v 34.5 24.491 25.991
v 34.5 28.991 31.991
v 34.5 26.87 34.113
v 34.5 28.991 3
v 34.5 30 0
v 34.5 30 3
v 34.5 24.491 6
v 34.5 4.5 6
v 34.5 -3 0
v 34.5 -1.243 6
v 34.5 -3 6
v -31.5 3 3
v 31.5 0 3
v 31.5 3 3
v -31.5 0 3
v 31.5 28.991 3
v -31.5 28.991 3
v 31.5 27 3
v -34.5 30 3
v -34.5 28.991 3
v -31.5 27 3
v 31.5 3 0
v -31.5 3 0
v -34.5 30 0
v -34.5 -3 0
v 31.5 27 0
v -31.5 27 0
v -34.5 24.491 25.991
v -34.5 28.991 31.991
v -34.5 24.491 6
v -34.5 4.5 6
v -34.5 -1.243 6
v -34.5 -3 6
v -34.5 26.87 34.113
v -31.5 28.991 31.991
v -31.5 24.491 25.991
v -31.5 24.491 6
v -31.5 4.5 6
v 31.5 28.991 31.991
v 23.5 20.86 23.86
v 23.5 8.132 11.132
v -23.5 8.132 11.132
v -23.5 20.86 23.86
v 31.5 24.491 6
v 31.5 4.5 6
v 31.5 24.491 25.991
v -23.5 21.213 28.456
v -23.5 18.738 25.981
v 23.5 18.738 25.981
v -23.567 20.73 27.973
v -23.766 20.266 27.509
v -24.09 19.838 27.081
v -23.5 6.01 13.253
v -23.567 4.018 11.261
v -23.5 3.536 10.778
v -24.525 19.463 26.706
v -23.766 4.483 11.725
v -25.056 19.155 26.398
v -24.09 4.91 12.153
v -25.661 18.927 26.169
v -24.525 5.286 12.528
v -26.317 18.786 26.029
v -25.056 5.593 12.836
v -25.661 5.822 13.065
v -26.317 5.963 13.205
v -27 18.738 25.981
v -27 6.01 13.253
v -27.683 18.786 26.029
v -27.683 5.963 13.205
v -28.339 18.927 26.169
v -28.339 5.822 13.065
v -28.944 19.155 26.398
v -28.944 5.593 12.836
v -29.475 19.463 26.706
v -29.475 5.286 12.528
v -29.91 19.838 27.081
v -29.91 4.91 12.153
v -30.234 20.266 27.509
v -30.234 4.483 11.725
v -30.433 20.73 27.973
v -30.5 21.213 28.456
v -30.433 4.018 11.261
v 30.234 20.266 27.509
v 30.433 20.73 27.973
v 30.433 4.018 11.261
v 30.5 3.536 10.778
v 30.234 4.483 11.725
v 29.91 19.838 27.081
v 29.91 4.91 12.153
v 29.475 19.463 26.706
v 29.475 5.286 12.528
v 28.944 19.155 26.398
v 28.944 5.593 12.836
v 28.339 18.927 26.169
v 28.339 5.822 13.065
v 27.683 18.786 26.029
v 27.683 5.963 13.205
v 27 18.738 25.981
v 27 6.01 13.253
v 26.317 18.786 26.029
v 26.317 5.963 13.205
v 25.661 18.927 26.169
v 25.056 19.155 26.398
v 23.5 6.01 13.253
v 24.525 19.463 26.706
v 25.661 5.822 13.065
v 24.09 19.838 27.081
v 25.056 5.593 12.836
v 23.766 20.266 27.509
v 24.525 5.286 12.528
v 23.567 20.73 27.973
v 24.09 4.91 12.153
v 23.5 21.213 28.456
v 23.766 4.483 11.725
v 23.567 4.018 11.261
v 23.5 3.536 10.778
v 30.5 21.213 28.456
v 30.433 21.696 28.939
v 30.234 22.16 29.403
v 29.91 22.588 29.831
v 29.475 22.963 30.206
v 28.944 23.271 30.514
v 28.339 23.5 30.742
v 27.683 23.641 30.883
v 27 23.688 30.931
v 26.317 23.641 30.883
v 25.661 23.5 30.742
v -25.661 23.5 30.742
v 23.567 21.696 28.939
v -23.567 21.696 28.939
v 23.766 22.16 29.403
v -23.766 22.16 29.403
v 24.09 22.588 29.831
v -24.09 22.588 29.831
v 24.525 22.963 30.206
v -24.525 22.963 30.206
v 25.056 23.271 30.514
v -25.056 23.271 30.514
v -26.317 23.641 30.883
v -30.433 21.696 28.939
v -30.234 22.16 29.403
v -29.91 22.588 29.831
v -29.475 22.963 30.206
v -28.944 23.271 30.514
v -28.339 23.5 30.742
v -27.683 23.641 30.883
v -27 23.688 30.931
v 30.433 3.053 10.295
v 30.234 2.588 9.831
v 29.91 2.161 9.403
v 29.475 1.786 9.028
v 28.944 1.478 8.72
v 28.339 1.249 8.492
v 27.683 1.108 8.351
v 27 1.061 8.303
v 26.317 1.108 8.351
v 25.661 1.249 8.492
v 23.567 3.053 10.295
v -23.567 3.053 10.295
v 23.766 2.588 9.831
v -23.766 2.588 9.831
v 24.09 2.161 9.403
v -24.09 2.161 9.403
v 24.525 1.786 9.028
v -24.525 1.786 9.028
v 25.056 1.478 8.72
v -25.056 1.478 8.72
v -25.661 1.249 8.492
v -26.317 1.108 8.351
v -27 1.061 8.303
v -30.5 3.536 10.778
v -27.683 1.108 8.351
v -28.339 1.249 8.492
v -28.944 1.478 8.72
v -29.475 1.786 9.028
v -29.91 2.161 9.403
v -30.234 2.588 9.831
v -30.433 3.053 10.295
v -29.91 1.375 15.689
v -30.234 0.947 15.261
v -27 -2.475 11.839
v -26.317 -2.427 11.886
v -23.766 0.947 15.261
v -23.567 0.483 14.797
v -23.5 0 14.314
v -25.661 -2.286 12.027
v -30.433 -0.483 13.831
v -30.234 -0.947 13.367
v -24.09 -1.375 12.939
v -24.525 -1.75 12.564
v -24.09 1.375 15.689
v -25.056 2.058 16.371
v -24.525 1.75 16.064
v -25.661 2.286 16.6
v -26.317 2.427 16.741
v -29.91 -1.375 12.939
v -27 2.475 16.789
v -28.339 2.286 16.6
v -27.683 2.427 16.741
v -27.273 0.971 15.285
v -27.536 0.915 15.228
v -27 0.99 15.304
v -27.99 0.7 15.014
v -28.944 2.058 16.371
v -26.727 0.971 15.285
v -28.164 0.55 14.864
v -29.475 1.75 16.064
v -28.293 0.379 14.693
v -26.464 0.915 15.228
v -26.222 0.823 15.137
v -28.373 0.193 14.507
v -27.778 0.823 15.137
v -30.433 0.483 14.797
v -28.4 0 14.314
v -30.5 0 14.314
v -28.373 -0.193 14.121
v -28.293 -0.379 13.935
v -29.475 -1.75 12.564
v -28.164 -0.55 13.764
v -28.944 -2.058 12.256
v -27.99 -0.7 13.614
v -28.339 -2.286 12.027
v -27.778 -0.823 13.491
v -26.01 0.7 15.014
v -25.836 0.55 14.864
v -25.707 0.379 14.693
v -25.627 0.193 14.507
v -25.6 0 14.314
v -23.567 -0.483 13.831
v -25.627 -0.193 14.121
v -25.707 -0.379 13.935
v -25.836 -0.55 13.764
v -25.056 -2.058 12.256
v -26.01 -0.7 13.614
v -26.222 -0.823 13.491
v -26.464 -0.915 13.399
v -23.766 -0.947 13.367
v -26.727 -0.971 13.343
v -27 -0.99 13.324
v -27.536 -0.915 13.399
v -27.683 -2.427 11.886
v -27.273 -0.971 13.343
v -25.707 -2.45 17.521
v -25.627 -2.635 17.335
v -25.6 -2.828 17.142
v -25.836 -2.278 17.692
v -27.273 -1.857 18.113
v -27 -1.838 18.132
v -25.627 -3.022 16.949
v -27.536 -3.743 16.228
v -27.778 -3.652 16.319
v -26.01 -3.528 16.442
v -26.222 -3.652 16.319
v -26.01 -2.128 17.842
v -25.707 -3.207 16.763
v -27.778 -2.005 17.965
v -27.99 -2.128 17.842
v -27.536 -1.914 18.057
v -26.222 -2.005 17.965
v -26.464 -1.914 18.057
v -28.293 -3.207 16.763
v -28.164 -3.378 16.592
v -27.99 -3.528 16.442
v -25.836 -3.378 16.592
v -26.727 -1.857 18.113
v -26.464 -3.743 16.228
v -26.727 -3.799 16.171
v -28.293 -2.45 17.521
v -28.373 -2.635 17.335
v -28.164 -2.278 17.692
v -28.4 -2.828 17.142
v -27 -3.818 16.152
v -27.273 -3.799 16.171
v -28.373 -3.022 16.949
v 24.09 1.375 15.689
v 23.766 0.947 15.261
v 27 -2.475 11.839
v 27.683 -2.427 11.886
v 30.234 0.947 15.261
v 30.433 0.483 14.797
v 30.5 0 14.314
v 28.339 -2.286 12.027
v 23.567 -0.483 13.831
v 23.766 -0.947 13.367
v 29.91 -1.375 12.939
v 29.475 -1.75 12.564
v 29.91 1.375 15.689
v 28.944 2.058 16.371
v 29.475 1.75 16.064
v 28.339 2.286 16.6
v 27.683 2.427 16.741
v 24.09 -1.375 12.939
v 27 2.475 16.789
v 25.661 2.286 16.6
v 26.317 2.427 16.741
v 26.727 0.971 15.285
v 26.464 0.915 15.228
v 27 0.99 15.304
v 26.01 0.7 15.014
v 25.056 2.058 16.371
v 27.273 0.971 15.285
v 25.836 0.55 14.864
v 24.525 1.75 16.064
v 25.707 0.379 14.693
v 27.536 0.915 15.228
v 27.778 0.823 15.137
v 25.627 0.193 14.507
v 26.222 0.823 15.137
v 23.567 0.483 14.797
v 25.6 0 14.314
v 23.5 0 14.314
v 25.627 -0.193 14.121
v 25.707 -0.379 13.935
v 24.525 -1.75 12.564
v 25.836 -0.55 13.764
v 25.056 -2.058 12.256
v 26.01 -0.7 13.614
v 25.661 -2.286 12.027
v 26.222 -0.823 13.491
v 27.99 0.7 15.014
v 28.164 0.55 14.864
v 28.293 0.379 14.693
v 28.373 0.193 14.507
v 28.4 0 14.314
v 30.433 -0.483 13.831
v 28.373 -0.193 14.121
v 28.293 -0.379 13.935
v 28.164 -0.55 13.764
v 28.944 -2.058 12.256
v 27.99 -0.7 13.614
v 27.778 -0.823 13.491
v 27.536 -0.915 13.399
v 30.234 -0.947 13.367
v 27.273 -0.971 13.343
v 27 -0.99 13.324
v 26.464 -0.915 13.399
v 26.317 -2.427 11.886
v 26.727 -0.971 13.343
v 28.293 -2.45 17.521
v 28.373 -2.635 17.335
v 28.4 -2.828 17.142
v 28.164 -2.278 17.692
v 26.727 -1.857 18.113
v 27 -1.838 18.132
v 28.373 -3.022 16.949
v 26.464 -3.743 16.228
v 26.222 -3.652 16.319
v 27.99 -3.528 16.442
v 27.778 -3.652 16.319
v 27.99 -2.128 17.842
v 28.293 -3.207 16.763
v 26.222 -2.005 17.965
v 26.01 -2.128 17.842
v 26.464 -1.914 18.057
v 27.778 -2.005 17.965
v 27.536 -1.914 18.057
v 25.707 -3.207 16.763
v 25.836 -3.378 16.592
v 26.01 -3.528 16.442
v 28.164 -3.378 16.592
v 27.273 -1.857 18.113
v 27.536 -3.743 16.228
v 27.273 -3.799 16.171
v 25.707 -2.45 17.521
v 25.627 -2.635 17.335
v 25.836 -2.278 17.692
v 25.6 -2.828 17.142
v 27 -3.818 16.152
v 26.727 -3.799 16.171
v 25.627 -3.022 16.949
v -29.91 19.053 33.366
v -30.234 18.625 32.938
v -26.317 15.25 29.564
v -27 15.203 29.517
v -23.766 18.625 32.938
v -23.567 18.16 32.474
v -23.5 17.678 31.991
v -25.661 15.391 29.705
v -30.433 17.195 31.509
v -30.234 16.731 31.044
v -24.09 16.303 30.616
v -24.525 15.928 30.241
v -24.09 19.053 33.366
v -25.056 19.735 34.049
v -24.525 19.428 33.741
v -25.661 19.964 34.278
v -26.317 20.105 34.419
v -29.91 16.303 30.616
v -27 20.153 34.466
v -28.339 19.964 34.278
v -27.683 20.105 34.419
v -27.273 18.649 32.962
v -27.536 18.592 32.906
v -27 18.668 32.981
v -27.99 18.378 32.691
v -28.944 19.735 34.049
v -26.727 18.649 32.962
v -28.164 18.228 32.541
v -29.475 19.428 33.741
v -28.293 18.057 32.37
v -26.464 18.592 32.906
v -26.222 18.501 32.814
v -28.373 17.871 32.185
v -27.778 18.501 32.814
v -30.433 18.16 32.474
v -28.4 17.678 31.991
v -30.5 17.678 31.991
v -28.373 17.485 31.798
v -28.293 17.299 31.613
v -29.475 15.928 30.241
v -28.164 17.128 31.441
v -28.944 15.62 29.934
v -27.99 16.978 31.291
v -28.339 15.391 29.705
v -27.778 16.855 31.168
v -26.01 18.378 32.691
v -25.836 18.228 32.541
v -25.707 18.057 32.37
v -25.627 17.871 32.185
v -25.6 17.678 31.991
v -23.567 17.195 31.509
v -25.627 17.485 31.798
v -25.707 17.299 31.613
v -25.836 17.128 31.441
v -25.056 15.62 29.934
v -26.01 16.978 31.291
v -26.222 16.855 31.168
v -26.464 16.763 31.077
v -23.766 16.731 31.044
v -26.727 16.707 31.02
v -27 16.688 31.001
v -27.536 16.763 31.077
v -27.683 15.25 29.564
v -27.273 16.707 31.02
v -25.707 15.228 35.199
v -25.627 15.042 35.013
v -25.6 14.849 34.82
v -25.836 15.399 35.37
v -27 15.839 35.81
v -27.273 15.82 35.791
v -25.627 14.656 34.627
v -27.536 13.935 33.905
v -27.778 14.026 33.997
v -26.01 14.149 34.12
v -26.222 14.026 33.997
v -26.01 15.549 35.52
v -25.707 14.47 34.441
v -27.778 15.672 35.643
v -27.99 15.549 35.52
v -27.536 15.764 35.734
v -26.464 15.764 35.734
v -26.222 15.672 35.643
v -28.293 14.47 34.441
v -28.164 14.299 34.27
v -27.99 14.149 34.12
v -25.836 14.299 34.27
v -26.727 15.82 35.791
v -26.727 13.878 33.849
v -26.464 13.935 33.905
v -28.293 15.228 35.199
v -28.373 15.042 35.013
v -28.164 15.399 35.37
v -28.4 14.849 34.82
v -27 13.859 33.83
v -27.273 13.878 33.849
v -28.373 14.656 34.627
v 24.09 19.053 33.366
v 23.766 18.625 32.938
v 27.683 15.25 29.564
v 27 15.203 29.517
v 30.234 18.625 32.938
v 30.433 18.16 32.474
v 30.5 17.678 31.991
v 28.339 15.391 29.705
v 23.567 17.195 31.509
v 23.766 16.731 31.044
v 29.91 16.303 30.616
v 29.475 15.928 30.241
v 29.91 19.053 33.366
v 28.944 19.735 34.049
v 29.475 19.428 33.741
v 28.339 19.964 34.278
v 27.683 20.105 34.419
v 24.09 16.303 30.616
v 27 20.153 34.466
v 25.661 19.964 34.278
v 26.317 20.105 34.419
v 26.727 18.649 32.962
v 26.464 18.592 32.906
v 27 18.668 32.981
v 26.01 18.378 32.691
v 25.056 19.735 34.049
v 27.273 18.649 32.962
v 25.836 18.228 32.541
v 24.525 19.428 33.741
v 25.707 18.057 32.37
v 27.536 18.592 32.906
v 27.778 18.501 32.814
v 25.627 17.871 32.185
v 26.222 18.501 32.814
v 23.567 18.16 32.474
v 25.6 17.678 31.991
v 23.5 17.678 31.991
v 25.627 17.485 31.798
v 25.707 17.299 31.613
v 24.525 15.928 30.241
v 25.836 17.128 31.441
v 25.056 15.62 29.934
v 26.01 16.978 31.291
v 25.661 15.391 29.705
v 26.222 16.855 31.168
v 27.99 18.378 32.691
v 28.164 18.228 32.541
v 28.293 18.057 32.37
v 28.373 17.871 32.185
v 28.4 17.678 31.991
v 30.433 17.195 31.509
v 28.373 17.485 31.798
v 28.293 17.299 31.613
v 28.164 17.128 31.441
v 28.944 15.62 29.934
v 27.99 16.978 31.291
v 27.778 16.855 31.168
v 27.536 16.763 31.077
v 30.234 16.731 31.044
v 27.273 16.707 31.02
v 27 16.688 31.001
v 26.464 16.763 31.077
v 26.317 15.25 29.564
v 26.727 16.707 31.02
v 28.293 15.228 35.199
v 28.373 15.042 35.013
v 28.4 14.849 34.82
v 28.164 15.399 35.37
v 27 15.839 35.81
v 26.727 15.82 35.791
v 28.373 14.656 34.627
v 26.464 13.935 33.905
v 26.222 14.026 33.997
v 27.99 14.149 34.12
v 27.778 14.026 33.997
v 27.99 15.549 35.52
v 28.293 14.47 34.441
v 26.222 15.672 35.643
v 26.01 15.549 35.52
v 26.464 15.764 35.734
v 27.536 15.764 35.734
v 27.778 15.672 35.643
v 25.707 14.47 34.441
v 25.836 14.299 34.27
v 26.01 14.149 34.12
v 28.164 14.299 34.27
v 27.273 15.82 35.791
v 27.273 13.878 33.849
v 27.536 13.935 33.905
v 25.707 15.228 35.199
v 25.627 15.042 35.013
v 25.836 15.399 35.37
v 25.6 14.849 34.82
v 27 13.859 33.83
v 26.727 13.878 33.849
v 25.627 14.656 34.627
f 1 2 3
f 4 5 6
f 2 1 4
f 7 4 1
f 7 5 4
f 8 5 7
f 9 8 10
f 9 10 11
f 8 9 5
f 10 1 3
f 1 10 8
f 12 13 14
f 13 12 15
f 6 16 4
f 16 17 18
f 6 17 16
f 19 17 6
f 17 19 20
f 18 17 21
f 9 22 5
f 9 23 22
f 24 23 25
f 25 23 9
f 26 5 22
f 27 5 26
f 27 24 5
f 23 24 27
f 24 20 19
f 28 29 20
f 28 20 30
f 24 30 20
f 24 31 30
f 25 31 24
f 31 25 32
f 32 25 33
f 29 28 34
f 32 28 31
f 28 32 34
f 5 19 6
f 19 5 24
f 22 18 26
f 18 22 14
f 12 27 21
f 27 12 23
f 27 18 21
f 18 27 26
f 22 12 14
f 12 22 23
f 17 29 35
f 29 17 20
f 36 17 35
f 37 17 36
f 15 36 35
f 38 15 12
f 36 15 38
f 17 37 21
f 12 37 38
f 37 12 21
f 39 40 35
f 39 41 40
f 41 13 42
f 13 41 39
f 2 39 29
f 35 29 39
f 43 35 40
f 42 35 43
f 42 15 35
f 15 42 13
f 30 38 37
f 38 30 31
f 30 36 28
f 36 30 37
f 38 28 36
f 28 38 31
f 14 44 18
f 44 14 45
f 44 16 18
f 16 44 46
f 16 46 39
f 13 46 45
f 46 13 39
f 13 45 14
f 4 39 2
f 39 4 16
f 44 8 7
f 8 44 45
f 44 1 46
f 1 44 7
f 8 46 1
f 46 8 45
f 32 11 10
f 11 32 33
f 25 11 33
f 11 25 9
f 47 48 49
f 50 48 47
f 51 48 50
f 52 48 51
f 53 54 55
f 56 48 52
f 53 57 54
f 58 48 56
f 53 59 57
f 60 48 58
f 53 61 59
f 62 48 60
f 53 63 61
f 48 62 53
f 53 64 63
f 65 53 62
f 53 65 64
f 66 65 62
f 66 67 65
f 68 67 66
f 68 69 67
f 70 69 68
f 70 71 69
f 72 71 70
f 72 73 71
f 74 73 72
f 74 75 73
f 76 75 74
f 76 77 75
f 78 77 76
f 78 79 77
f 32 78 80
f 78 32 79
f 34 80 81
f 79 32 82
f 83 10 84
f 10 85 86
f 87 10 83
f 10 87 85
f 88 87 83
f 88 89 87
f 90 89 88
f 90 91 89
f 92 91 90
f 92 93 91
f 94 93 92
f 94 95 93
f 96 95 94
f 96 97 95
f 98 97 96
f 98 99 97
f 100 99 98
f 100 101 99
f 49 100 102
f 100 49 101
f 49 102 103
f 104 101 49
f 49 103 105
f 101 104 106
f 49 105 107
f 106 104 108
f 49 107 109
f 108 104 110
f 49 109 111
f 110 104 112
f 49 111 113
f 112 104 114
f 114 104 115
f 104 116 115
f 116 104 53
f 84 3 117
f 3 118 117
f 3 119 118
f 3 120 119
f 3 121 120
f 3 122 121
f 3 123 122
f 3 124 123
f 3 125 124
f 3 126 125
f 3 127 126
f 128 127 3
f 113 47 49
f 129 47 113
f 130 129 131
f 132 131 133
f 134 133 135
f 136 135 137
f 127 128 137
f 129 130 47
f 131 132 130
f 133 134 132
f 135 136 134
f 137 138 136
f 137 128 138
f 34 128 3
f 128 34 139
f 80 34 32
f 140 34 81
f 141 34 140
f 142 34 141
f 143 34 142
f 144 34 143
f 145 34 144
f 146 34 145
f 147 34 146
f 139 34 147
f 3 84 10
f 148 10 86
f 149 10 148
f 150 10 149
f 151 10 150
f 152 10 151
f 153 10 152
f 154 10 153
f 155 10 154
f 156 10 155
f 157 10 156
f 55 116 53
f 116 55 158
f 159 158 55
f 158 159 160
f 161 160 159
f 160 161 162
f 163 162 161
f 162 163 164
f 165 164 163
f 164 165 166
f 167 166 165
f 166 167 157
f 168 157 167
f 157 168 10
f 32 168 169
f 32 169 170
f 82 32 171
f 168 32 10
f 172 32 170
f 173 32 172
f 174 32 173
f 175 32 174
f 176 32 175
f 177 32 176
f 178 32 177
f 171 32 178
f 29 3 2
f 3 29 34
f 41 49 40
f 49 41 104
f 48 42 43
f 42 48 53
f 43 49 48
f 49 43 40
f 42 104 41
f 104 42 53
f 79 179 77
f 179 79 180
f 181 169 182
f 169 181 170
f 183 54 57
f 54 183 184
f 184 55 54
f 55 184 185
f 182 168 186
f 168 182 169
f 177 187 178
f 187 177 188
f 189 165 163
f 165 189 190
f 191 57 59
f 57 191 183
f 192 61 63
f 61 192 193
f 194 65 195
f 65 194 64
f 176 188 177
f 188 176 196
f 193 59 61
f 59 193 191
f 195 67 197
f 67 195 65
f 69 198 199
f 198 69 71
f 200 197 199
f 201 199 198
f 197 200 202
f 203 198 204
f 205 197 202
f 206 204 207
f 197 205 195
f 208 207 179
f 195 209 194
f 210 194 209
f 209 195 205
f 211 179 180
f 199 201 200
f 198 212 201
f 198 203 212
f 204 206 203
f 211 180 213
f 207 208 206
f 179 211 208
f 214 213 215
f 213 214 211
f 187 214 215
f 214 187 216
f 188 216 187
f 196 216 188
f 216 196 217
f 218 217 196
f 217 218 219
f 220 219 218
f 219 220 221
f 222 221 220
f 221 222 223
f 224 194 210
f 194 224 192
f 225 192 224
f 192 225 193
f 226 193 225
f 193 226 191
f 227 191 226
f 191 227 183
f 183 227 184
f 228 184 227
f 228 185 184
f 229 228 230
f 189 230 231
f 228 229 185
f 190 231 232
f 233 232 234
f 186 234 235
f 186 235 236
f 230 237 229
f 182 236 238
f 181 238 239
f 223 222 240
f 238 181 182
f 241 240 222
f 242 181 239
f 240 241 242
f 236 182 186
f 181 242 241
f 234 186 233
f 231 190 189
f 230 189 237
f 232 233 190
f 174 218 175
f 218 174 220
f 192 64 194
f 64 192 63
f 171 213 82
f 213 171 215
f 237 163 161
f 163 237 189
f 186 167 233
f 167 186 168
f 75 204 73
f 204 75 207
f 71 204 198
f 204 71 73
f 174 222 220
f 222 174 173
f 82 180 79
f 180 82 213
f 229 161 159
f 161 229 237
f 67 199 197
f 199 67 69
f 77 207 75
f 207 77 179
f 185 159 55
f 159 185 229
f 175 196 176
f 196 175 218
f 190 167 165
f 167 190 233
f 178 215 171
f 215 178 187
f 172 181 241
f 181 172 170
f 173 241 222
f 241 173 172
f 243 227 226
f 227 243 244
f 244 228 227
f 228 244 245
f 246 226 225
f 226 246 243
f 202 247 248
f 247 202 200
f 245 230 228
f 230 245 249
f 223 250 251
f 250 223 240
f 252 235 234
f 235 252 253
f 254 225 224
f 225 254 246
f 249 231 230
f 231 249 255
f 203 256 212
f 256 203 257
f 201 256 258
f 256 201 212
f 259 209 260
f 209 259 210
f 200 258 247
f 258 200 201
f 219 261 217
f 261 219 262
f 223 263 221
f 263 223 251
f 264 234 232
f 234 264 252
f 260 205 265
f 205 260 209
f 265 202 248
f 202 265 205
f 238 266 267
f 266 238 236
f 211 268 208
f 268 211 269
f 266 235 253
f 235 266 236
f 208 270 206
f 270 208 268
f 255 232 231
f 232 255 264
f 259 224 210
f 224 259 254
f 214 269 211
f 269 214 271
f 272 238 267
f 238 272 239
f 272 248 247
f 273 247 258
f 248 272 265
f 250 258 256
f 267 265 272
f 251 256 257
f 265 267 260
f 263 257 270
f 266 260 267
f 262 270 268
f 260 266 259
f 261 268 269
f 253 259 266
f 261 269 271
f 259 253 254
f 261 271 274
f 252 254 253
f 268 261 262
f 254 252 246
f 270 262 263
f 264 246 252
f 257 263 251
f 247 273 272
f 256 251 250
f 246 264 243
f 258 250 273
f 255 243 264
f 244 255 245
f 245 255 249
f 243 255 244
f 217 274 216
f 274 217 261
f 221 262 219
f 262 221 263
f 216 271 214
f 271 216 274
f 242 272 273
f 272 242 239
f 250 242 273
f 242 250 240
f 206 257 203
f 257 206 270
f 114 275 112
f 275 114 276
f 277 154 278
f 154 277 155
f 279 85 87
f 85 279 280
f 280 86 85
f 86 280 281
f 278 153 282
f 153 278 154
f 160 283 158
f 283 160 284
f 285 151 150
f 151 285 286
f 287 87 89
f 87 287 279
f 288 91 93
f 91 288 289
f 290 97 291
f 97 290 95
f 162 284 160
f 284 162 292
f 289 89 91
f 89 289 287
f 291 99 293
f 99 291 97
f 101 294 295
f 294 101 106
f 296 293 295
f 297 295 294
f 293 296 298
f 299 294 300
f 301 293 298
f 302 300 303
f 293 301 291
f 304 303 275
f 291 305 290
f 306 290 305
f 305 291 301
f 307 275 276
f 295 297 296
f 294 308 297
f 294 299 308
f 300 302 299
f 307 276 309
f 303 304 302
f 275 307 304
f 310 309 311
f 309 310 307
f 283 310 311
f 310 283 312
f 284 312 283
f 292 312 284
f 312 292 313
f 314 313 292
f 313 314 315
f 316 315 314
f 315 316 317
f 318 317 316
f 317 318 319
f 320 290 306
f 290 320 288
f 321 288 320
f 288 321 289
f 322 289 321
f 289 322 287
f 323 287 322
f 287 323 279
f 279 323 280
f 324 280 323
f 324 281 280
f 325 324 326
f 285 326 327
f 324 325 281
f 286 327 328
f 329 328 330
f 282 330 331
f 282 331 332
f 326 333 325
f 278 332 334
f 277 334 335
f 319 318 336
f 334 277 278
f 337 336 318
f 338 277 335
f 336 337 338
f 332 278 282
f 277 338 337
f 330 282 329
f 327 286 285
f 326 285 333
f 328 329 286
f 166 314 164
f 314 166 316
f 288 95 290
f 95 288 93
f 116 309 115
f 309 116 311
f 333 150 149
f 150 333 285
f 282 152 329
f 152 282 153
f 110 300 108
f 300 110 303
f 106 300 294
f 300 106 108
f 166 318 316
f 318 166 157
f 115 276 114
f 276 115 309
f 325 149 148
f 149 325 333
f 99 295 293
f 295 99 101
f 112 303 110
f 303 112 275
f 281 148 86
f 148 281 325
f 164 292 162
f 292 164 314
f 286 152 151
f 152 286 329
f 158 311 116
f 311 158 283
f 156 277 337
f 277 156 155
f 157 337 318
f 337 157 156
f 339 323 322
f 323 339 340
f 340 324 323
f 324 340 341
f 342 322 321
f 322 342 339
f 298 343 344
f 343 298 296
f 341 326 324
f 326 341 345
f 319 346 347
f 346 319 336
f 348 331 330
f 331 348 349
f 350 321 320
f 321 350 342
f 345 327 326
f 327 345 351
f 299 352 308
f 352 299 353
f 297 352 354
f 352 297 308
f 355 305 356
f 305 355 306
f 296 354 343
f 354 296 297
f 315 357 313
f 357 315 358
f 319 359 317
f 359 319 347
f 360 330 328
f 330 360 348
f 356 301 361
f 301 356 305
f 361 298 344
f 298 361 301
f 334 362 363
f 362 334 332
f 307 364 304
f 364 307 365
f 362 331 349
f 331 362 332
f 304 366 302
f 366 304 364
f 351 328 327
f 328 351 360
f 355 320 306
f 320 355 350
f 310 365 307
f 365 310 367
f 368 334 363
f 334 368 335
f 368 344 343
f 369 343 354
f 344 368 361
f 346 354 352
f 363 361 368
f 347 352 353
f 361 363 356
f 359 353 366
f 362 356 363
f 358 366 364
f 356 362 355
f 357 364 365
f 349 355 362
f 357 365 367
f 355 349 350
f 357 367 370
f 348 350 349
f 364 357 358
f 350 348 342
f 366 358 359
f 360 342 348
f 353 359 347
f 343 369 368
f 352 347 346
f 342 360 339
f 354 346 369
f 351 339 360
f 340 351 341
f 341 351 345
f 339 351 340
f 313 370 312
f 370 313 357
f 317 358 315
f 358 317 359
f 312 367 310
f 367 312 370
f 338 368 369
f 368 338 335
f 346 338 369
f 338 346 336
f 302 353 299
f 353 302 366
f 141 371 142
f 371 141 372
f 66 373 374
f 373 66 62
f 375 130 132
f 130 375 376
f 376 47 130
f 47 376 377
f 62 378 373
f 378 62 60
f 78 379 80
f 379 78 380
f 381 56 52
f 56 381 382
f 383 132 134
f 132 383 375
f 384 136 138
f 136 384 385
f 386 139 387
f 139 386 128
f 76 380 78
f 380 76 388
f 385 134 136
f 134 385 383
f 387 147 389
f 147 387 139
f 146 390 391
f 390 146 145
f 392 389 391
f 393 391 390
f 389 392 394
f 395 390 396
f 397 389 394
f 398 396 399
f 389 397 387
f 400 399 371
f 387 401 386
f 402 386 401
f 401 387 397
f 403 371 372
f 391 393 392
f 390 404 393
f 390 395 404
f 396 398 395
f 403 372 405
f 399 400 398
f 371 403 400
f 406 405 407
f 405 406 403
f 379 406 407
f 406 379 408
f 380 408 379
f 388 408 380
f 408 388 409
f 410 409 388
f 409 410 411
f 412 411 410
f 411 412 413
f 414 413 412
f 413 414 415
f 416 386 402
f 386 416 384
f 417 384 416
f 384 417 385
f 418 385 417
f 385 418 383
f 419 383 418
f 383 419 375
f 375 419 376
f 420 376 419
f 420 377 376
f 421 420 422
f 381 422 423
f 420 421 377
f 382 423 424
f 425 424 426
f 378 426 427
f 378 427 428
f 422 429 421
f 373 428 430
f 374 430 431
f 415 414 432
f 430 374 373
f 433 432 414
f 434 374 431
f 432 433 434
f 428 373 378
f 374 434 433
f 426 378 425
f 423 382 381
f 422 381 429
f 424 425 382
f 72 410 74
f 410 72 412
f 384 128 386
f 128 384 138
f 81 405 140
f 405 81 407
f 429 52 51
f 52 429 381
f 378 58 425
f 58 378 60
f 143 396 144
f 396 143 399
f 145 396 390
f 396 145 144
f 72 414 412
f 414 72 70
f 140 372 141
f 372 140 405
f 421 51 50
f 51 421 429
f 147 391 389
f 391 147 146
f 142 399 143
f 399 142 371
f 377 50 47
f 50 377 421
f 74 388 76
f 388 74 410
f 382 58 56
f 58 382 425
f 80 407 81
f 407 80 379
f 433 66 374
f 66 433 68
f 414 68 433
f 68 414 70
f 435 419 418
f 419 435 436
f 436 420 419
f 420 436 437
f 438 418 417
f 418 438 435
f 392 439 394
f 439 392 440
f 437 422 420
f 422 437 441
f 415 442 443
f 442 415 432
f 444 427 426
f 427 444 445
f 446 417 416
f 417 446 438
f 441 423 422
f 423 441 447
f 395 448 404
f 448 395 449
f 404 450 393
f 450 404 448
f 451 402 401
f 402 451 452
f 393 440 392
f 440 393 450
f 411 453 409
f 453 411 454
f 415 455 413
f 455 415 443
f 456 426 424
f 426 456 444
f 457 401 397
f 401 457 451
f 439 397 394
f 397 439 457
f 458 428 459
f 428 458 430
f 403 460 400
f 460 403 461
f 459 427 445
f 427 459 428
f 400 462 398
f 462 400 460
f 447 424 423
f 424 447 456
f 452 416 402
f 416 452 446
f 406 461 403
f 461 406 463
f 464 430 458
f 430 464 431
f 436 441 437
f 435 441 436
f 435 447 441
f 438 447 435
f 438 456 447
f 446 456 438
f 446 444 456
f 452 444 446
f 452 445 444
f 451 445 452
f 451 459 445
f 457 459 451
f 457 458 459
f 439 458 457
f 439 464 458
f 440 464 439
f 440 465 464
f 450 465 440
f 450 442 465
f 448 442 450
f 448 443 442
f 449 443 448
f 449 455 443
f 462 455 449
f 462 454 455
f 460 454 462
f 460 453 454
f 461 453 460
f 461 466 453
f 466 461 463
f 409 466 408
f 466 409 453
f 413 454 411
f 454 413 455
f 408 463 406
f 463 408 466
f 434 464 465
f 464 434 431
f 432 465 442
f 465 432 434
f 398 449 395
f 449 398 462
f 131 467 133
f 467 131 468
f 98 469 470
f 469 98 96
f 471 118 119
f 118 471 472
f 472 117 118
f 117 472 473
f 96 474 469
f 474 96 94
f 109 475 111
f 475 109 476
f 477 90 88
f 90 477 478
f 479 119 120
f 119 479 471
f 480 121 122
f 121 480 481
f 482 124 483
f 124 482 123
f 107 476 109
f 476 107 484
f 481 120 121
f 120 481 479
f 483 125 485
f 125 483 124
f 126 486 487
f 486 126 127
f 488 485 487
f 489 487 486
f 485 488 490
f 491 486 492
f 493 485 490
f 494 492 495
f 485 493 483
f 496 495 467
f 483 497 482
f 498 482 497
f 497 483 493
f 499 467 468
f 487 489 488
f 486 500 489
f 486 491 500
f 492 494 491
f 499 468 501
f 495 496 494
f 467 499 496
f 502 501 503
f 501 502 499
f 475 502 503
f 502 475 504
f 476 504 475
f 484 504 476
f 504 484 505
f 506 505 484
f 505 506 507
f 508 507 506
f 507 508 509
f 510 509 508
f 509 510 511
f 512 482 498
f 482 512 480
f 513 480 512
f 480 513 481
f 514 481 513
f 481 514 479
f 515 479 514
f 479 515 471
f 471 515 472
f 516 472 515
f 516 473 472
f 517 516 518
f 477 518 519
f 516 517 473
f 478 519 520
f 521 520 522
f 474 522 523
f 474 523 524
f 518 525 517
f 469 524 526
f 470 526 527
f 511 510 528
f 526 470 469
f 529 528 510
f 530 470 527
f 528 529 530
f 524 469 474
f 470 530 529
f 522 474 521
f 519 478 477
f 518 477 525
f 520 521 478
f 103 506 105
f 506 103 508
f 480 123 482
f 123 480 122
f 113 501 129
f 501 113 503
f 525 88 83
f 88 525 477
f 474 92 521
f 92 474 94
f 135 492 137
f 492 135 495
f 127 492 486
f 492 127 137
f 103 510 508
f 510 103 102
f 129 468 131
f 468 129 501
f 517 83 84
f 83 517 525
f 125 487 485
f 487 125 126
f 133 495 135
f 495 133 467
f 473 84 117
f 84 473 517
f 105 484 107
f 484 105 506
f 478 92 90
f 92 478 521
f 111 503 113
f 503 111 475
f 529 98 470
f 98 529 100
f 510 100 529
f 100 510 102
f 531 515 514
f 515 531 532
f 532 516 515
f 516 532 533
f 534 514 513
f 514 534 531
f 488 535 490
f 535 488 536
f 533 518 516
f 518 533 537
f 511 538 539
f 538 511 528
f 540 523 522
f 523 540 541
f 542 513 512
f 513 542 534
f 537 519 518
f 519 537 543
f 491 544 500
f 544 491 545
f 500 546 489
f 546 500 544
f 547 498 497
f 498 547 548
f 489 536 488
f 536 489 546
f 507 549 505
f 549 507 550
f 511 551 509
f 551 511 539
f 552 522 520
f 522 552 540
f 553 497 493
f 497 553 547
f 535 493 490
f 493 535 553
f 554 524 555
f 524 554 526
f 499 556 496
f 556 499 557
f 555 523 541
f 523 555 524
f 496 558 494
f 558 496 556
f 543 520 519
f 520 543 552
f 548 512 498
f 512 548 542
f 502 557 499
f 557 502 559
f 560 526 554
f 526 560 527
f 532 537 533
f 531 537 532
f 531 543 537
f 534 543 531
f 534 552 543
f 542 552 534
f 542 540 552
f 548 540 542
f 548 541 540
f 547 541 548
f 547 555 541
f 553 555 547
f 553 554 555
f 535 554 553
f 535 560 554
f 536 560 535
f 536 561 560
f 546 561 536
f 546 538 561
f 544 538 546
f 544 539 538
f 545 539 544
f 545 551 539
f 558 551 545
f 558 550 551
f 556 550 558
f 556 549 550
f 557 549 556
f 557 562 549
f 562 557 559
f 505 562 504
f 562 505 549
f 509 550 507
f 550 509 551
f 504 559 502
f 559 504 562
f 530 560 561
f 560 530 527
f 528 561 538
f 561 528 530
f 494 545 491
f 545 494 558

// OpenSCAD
// Support incline pour HW-364B (ESP8266 + OLED)
// Dimensions carte : 59 x 31 mm
// Trous : 3 mm, entraxe 54 x 25 mm
// Inclinaison : 45 degres

// === PARAMETRES MODIFIABLES ===
pcb_width = 59;           // Largeur PCB (mm)
pcb_height = 31;          // Hauteur PCB (mm)
hole_diameter = 3;        // Diametre des trous de fixation
hole_spacing_h = 54;      // Entraxe horizontal des trous
hole_spacing_v = 25;      // Entraxe vertical des trous
angle = 45;               // Angle d'inclinaison (degres)

// Parametres du support
wall_thickness = 3;       // Epaisseur des parois
pillar_diameter = 7;      // Diametre des piliers de fixation
pillar_height = 5;        // Hauteur des piliers (ecart PCB/support)
base_depth = 30;          // Profondeur de la base
margin = 5;               // Marge autour du PCB

// === CALCULS ===
support_width = pcb_width + 2 * margin;
support_height = pcb_height + 2 * margin;

// Position des trous (centre du PCB comme origine)
hole_offset_h = hole_spacing_h / 2;
hole_offset_v = hole_spacing_v / 2;

// Profondeur occupee par le plateau incline (projection horizontale)
plate_depth = cos(angle) * support_height;

// === MODULES ===

// Pilier avec teton de fixation
peg_diameter = 2.8;       // Diametre teton (legèrement < 3mm pour insertion)
peg_height = 4;           // Hauteur du teton

module pillar(h, outer_d) {
    // Base du pilier
    cylinder(h = h, d = outer_d, $fn = 32);
    // Teton
    translate([0, 0, h])
        cylinder(h = peg_height, d = peg_diameter, $fn = 32);
}

// Plateau incline avec les 4 piliers
module inclined_plate() {
    difference() {
        // Plaque de base
        translate([-support_width/2, 0, 0])
            cube([support_width, support_height, wall_thickness]);

        // Trou central traversant (juste un cadre autour des piliers)
        hole_w = hole_spacing_h - pillar_diameter;
        hole_h = hole_spacing_v - pillar_diameter;
        translate([-hole_w/2, support_height/2 - hole_h/2, -0.1])
            cube([hole_w, hole_h, wall_thickness + 0.2]);
    }

    // Les 4 piliers de fixation
    translate([-hole_offset_h, support_height/2 - hole_offset_v, wall_thickness])
        pillar(pillar_height, pillar_diameter);
    translate([hole_offset_h, support_height/2 - hole_offset_v, wall_thickness])
        pillar(pillar_height, pillar_diameter);
    translate([-hole_offset_h, support_height/2 + hole_offset_v, wall_thickness])
        pillar(pillar_height, pillar_diameter);
    translate([hole_offset_h, support_height/2 + hole_offset_v, wall_thickness])
        pillar(pillar_height, pillar_diameter);
}

// Triangle evide (avec trou central)
module hollow_triangle(depth, height, thickness, hole_margin) {
    difference() {
        // Triangle plein
        linear_extrude(thickness)
            polygon([
                [0, 0],
                [depth, 0],
                [depth, height],
                [0, 0]
            ]);

        // Trou triangulaire (plus petit)
        translate([hole_margin * 1.5, hole_margin, -0.1])
            linear_extrude(thickness + 0.2)
            polygon([
                [0, 0],
                [depth - hole_margin * 3, 0],
                [depth - hole_margin * 3, height - hole_margin * 3],
                [0, 0]
            ]);
    }
}

// Base avec renforts integres
module base_with_supports() {
    // Hauteur du point haut du plateau
    top_height = sin(angle) * support_height + wall_thickness;
    triangle_height = top_height - wall_thickness;

    // Plaque de base horizontale avec trou
    difference() {
        translate([-support_width/2, 0, 0])
            cube([support_width, base_depth, wall_thickness]);

        // Trou dans la base (juste un cadre)
        base_hole_w = support_width - wall_thickness * 2;
        base_hole_d = base_depth - wall_thickness * 2;
        translate([-base_hole_w/2, wall_thickness, -0.1])
            cube([base_hole_w, base_hole_d, wall_thickness + 0.2]);
    }

    // Renfort lateral gauche (triangle evide)
    translate([-support_width/2, 0, wall_thickness])
        rotate([90, 0, 90])
        hollow_triangle(plate_depth, triangle_height, wall_thickness, 3);

    // Renfort lateral droit (triangle evide)
    translate([support_width/2 - wall_thickness, 0, wall_thickness])
        rotate([90, 0, 90])
        hollow_triangle(plate_depth, triangle_height, wall_thickness, 3);

    // Rebord avant (liaison base-plateau)
    translate([-support_width/2, -wall_thickness, 0])
        cube([support_width, wall_thickness, wall_thickness * 2]);
}

// === ASSEMBLAGE FINAL ===
module stand() {
    // Base avec renforts lateraux
    base_with_supports();

    // Plateau incline (pose sur la base, incline vers l'arriere)
    translate([0, 0, wall_thickness])
        rotate([angle, 0, 0])
        inclined_plate();
}

// Rendu
stand();

// Apercu de la position du PCB (decommenter pour visualiser)
// %translate([0, 0, wall_thickness])
//     rotate([angle, 0, 0])
//     translate([0, support_height/2, wall_thickness + pillar_height])
//     cube([pcb_width, pcb_height, 2], center = true);
